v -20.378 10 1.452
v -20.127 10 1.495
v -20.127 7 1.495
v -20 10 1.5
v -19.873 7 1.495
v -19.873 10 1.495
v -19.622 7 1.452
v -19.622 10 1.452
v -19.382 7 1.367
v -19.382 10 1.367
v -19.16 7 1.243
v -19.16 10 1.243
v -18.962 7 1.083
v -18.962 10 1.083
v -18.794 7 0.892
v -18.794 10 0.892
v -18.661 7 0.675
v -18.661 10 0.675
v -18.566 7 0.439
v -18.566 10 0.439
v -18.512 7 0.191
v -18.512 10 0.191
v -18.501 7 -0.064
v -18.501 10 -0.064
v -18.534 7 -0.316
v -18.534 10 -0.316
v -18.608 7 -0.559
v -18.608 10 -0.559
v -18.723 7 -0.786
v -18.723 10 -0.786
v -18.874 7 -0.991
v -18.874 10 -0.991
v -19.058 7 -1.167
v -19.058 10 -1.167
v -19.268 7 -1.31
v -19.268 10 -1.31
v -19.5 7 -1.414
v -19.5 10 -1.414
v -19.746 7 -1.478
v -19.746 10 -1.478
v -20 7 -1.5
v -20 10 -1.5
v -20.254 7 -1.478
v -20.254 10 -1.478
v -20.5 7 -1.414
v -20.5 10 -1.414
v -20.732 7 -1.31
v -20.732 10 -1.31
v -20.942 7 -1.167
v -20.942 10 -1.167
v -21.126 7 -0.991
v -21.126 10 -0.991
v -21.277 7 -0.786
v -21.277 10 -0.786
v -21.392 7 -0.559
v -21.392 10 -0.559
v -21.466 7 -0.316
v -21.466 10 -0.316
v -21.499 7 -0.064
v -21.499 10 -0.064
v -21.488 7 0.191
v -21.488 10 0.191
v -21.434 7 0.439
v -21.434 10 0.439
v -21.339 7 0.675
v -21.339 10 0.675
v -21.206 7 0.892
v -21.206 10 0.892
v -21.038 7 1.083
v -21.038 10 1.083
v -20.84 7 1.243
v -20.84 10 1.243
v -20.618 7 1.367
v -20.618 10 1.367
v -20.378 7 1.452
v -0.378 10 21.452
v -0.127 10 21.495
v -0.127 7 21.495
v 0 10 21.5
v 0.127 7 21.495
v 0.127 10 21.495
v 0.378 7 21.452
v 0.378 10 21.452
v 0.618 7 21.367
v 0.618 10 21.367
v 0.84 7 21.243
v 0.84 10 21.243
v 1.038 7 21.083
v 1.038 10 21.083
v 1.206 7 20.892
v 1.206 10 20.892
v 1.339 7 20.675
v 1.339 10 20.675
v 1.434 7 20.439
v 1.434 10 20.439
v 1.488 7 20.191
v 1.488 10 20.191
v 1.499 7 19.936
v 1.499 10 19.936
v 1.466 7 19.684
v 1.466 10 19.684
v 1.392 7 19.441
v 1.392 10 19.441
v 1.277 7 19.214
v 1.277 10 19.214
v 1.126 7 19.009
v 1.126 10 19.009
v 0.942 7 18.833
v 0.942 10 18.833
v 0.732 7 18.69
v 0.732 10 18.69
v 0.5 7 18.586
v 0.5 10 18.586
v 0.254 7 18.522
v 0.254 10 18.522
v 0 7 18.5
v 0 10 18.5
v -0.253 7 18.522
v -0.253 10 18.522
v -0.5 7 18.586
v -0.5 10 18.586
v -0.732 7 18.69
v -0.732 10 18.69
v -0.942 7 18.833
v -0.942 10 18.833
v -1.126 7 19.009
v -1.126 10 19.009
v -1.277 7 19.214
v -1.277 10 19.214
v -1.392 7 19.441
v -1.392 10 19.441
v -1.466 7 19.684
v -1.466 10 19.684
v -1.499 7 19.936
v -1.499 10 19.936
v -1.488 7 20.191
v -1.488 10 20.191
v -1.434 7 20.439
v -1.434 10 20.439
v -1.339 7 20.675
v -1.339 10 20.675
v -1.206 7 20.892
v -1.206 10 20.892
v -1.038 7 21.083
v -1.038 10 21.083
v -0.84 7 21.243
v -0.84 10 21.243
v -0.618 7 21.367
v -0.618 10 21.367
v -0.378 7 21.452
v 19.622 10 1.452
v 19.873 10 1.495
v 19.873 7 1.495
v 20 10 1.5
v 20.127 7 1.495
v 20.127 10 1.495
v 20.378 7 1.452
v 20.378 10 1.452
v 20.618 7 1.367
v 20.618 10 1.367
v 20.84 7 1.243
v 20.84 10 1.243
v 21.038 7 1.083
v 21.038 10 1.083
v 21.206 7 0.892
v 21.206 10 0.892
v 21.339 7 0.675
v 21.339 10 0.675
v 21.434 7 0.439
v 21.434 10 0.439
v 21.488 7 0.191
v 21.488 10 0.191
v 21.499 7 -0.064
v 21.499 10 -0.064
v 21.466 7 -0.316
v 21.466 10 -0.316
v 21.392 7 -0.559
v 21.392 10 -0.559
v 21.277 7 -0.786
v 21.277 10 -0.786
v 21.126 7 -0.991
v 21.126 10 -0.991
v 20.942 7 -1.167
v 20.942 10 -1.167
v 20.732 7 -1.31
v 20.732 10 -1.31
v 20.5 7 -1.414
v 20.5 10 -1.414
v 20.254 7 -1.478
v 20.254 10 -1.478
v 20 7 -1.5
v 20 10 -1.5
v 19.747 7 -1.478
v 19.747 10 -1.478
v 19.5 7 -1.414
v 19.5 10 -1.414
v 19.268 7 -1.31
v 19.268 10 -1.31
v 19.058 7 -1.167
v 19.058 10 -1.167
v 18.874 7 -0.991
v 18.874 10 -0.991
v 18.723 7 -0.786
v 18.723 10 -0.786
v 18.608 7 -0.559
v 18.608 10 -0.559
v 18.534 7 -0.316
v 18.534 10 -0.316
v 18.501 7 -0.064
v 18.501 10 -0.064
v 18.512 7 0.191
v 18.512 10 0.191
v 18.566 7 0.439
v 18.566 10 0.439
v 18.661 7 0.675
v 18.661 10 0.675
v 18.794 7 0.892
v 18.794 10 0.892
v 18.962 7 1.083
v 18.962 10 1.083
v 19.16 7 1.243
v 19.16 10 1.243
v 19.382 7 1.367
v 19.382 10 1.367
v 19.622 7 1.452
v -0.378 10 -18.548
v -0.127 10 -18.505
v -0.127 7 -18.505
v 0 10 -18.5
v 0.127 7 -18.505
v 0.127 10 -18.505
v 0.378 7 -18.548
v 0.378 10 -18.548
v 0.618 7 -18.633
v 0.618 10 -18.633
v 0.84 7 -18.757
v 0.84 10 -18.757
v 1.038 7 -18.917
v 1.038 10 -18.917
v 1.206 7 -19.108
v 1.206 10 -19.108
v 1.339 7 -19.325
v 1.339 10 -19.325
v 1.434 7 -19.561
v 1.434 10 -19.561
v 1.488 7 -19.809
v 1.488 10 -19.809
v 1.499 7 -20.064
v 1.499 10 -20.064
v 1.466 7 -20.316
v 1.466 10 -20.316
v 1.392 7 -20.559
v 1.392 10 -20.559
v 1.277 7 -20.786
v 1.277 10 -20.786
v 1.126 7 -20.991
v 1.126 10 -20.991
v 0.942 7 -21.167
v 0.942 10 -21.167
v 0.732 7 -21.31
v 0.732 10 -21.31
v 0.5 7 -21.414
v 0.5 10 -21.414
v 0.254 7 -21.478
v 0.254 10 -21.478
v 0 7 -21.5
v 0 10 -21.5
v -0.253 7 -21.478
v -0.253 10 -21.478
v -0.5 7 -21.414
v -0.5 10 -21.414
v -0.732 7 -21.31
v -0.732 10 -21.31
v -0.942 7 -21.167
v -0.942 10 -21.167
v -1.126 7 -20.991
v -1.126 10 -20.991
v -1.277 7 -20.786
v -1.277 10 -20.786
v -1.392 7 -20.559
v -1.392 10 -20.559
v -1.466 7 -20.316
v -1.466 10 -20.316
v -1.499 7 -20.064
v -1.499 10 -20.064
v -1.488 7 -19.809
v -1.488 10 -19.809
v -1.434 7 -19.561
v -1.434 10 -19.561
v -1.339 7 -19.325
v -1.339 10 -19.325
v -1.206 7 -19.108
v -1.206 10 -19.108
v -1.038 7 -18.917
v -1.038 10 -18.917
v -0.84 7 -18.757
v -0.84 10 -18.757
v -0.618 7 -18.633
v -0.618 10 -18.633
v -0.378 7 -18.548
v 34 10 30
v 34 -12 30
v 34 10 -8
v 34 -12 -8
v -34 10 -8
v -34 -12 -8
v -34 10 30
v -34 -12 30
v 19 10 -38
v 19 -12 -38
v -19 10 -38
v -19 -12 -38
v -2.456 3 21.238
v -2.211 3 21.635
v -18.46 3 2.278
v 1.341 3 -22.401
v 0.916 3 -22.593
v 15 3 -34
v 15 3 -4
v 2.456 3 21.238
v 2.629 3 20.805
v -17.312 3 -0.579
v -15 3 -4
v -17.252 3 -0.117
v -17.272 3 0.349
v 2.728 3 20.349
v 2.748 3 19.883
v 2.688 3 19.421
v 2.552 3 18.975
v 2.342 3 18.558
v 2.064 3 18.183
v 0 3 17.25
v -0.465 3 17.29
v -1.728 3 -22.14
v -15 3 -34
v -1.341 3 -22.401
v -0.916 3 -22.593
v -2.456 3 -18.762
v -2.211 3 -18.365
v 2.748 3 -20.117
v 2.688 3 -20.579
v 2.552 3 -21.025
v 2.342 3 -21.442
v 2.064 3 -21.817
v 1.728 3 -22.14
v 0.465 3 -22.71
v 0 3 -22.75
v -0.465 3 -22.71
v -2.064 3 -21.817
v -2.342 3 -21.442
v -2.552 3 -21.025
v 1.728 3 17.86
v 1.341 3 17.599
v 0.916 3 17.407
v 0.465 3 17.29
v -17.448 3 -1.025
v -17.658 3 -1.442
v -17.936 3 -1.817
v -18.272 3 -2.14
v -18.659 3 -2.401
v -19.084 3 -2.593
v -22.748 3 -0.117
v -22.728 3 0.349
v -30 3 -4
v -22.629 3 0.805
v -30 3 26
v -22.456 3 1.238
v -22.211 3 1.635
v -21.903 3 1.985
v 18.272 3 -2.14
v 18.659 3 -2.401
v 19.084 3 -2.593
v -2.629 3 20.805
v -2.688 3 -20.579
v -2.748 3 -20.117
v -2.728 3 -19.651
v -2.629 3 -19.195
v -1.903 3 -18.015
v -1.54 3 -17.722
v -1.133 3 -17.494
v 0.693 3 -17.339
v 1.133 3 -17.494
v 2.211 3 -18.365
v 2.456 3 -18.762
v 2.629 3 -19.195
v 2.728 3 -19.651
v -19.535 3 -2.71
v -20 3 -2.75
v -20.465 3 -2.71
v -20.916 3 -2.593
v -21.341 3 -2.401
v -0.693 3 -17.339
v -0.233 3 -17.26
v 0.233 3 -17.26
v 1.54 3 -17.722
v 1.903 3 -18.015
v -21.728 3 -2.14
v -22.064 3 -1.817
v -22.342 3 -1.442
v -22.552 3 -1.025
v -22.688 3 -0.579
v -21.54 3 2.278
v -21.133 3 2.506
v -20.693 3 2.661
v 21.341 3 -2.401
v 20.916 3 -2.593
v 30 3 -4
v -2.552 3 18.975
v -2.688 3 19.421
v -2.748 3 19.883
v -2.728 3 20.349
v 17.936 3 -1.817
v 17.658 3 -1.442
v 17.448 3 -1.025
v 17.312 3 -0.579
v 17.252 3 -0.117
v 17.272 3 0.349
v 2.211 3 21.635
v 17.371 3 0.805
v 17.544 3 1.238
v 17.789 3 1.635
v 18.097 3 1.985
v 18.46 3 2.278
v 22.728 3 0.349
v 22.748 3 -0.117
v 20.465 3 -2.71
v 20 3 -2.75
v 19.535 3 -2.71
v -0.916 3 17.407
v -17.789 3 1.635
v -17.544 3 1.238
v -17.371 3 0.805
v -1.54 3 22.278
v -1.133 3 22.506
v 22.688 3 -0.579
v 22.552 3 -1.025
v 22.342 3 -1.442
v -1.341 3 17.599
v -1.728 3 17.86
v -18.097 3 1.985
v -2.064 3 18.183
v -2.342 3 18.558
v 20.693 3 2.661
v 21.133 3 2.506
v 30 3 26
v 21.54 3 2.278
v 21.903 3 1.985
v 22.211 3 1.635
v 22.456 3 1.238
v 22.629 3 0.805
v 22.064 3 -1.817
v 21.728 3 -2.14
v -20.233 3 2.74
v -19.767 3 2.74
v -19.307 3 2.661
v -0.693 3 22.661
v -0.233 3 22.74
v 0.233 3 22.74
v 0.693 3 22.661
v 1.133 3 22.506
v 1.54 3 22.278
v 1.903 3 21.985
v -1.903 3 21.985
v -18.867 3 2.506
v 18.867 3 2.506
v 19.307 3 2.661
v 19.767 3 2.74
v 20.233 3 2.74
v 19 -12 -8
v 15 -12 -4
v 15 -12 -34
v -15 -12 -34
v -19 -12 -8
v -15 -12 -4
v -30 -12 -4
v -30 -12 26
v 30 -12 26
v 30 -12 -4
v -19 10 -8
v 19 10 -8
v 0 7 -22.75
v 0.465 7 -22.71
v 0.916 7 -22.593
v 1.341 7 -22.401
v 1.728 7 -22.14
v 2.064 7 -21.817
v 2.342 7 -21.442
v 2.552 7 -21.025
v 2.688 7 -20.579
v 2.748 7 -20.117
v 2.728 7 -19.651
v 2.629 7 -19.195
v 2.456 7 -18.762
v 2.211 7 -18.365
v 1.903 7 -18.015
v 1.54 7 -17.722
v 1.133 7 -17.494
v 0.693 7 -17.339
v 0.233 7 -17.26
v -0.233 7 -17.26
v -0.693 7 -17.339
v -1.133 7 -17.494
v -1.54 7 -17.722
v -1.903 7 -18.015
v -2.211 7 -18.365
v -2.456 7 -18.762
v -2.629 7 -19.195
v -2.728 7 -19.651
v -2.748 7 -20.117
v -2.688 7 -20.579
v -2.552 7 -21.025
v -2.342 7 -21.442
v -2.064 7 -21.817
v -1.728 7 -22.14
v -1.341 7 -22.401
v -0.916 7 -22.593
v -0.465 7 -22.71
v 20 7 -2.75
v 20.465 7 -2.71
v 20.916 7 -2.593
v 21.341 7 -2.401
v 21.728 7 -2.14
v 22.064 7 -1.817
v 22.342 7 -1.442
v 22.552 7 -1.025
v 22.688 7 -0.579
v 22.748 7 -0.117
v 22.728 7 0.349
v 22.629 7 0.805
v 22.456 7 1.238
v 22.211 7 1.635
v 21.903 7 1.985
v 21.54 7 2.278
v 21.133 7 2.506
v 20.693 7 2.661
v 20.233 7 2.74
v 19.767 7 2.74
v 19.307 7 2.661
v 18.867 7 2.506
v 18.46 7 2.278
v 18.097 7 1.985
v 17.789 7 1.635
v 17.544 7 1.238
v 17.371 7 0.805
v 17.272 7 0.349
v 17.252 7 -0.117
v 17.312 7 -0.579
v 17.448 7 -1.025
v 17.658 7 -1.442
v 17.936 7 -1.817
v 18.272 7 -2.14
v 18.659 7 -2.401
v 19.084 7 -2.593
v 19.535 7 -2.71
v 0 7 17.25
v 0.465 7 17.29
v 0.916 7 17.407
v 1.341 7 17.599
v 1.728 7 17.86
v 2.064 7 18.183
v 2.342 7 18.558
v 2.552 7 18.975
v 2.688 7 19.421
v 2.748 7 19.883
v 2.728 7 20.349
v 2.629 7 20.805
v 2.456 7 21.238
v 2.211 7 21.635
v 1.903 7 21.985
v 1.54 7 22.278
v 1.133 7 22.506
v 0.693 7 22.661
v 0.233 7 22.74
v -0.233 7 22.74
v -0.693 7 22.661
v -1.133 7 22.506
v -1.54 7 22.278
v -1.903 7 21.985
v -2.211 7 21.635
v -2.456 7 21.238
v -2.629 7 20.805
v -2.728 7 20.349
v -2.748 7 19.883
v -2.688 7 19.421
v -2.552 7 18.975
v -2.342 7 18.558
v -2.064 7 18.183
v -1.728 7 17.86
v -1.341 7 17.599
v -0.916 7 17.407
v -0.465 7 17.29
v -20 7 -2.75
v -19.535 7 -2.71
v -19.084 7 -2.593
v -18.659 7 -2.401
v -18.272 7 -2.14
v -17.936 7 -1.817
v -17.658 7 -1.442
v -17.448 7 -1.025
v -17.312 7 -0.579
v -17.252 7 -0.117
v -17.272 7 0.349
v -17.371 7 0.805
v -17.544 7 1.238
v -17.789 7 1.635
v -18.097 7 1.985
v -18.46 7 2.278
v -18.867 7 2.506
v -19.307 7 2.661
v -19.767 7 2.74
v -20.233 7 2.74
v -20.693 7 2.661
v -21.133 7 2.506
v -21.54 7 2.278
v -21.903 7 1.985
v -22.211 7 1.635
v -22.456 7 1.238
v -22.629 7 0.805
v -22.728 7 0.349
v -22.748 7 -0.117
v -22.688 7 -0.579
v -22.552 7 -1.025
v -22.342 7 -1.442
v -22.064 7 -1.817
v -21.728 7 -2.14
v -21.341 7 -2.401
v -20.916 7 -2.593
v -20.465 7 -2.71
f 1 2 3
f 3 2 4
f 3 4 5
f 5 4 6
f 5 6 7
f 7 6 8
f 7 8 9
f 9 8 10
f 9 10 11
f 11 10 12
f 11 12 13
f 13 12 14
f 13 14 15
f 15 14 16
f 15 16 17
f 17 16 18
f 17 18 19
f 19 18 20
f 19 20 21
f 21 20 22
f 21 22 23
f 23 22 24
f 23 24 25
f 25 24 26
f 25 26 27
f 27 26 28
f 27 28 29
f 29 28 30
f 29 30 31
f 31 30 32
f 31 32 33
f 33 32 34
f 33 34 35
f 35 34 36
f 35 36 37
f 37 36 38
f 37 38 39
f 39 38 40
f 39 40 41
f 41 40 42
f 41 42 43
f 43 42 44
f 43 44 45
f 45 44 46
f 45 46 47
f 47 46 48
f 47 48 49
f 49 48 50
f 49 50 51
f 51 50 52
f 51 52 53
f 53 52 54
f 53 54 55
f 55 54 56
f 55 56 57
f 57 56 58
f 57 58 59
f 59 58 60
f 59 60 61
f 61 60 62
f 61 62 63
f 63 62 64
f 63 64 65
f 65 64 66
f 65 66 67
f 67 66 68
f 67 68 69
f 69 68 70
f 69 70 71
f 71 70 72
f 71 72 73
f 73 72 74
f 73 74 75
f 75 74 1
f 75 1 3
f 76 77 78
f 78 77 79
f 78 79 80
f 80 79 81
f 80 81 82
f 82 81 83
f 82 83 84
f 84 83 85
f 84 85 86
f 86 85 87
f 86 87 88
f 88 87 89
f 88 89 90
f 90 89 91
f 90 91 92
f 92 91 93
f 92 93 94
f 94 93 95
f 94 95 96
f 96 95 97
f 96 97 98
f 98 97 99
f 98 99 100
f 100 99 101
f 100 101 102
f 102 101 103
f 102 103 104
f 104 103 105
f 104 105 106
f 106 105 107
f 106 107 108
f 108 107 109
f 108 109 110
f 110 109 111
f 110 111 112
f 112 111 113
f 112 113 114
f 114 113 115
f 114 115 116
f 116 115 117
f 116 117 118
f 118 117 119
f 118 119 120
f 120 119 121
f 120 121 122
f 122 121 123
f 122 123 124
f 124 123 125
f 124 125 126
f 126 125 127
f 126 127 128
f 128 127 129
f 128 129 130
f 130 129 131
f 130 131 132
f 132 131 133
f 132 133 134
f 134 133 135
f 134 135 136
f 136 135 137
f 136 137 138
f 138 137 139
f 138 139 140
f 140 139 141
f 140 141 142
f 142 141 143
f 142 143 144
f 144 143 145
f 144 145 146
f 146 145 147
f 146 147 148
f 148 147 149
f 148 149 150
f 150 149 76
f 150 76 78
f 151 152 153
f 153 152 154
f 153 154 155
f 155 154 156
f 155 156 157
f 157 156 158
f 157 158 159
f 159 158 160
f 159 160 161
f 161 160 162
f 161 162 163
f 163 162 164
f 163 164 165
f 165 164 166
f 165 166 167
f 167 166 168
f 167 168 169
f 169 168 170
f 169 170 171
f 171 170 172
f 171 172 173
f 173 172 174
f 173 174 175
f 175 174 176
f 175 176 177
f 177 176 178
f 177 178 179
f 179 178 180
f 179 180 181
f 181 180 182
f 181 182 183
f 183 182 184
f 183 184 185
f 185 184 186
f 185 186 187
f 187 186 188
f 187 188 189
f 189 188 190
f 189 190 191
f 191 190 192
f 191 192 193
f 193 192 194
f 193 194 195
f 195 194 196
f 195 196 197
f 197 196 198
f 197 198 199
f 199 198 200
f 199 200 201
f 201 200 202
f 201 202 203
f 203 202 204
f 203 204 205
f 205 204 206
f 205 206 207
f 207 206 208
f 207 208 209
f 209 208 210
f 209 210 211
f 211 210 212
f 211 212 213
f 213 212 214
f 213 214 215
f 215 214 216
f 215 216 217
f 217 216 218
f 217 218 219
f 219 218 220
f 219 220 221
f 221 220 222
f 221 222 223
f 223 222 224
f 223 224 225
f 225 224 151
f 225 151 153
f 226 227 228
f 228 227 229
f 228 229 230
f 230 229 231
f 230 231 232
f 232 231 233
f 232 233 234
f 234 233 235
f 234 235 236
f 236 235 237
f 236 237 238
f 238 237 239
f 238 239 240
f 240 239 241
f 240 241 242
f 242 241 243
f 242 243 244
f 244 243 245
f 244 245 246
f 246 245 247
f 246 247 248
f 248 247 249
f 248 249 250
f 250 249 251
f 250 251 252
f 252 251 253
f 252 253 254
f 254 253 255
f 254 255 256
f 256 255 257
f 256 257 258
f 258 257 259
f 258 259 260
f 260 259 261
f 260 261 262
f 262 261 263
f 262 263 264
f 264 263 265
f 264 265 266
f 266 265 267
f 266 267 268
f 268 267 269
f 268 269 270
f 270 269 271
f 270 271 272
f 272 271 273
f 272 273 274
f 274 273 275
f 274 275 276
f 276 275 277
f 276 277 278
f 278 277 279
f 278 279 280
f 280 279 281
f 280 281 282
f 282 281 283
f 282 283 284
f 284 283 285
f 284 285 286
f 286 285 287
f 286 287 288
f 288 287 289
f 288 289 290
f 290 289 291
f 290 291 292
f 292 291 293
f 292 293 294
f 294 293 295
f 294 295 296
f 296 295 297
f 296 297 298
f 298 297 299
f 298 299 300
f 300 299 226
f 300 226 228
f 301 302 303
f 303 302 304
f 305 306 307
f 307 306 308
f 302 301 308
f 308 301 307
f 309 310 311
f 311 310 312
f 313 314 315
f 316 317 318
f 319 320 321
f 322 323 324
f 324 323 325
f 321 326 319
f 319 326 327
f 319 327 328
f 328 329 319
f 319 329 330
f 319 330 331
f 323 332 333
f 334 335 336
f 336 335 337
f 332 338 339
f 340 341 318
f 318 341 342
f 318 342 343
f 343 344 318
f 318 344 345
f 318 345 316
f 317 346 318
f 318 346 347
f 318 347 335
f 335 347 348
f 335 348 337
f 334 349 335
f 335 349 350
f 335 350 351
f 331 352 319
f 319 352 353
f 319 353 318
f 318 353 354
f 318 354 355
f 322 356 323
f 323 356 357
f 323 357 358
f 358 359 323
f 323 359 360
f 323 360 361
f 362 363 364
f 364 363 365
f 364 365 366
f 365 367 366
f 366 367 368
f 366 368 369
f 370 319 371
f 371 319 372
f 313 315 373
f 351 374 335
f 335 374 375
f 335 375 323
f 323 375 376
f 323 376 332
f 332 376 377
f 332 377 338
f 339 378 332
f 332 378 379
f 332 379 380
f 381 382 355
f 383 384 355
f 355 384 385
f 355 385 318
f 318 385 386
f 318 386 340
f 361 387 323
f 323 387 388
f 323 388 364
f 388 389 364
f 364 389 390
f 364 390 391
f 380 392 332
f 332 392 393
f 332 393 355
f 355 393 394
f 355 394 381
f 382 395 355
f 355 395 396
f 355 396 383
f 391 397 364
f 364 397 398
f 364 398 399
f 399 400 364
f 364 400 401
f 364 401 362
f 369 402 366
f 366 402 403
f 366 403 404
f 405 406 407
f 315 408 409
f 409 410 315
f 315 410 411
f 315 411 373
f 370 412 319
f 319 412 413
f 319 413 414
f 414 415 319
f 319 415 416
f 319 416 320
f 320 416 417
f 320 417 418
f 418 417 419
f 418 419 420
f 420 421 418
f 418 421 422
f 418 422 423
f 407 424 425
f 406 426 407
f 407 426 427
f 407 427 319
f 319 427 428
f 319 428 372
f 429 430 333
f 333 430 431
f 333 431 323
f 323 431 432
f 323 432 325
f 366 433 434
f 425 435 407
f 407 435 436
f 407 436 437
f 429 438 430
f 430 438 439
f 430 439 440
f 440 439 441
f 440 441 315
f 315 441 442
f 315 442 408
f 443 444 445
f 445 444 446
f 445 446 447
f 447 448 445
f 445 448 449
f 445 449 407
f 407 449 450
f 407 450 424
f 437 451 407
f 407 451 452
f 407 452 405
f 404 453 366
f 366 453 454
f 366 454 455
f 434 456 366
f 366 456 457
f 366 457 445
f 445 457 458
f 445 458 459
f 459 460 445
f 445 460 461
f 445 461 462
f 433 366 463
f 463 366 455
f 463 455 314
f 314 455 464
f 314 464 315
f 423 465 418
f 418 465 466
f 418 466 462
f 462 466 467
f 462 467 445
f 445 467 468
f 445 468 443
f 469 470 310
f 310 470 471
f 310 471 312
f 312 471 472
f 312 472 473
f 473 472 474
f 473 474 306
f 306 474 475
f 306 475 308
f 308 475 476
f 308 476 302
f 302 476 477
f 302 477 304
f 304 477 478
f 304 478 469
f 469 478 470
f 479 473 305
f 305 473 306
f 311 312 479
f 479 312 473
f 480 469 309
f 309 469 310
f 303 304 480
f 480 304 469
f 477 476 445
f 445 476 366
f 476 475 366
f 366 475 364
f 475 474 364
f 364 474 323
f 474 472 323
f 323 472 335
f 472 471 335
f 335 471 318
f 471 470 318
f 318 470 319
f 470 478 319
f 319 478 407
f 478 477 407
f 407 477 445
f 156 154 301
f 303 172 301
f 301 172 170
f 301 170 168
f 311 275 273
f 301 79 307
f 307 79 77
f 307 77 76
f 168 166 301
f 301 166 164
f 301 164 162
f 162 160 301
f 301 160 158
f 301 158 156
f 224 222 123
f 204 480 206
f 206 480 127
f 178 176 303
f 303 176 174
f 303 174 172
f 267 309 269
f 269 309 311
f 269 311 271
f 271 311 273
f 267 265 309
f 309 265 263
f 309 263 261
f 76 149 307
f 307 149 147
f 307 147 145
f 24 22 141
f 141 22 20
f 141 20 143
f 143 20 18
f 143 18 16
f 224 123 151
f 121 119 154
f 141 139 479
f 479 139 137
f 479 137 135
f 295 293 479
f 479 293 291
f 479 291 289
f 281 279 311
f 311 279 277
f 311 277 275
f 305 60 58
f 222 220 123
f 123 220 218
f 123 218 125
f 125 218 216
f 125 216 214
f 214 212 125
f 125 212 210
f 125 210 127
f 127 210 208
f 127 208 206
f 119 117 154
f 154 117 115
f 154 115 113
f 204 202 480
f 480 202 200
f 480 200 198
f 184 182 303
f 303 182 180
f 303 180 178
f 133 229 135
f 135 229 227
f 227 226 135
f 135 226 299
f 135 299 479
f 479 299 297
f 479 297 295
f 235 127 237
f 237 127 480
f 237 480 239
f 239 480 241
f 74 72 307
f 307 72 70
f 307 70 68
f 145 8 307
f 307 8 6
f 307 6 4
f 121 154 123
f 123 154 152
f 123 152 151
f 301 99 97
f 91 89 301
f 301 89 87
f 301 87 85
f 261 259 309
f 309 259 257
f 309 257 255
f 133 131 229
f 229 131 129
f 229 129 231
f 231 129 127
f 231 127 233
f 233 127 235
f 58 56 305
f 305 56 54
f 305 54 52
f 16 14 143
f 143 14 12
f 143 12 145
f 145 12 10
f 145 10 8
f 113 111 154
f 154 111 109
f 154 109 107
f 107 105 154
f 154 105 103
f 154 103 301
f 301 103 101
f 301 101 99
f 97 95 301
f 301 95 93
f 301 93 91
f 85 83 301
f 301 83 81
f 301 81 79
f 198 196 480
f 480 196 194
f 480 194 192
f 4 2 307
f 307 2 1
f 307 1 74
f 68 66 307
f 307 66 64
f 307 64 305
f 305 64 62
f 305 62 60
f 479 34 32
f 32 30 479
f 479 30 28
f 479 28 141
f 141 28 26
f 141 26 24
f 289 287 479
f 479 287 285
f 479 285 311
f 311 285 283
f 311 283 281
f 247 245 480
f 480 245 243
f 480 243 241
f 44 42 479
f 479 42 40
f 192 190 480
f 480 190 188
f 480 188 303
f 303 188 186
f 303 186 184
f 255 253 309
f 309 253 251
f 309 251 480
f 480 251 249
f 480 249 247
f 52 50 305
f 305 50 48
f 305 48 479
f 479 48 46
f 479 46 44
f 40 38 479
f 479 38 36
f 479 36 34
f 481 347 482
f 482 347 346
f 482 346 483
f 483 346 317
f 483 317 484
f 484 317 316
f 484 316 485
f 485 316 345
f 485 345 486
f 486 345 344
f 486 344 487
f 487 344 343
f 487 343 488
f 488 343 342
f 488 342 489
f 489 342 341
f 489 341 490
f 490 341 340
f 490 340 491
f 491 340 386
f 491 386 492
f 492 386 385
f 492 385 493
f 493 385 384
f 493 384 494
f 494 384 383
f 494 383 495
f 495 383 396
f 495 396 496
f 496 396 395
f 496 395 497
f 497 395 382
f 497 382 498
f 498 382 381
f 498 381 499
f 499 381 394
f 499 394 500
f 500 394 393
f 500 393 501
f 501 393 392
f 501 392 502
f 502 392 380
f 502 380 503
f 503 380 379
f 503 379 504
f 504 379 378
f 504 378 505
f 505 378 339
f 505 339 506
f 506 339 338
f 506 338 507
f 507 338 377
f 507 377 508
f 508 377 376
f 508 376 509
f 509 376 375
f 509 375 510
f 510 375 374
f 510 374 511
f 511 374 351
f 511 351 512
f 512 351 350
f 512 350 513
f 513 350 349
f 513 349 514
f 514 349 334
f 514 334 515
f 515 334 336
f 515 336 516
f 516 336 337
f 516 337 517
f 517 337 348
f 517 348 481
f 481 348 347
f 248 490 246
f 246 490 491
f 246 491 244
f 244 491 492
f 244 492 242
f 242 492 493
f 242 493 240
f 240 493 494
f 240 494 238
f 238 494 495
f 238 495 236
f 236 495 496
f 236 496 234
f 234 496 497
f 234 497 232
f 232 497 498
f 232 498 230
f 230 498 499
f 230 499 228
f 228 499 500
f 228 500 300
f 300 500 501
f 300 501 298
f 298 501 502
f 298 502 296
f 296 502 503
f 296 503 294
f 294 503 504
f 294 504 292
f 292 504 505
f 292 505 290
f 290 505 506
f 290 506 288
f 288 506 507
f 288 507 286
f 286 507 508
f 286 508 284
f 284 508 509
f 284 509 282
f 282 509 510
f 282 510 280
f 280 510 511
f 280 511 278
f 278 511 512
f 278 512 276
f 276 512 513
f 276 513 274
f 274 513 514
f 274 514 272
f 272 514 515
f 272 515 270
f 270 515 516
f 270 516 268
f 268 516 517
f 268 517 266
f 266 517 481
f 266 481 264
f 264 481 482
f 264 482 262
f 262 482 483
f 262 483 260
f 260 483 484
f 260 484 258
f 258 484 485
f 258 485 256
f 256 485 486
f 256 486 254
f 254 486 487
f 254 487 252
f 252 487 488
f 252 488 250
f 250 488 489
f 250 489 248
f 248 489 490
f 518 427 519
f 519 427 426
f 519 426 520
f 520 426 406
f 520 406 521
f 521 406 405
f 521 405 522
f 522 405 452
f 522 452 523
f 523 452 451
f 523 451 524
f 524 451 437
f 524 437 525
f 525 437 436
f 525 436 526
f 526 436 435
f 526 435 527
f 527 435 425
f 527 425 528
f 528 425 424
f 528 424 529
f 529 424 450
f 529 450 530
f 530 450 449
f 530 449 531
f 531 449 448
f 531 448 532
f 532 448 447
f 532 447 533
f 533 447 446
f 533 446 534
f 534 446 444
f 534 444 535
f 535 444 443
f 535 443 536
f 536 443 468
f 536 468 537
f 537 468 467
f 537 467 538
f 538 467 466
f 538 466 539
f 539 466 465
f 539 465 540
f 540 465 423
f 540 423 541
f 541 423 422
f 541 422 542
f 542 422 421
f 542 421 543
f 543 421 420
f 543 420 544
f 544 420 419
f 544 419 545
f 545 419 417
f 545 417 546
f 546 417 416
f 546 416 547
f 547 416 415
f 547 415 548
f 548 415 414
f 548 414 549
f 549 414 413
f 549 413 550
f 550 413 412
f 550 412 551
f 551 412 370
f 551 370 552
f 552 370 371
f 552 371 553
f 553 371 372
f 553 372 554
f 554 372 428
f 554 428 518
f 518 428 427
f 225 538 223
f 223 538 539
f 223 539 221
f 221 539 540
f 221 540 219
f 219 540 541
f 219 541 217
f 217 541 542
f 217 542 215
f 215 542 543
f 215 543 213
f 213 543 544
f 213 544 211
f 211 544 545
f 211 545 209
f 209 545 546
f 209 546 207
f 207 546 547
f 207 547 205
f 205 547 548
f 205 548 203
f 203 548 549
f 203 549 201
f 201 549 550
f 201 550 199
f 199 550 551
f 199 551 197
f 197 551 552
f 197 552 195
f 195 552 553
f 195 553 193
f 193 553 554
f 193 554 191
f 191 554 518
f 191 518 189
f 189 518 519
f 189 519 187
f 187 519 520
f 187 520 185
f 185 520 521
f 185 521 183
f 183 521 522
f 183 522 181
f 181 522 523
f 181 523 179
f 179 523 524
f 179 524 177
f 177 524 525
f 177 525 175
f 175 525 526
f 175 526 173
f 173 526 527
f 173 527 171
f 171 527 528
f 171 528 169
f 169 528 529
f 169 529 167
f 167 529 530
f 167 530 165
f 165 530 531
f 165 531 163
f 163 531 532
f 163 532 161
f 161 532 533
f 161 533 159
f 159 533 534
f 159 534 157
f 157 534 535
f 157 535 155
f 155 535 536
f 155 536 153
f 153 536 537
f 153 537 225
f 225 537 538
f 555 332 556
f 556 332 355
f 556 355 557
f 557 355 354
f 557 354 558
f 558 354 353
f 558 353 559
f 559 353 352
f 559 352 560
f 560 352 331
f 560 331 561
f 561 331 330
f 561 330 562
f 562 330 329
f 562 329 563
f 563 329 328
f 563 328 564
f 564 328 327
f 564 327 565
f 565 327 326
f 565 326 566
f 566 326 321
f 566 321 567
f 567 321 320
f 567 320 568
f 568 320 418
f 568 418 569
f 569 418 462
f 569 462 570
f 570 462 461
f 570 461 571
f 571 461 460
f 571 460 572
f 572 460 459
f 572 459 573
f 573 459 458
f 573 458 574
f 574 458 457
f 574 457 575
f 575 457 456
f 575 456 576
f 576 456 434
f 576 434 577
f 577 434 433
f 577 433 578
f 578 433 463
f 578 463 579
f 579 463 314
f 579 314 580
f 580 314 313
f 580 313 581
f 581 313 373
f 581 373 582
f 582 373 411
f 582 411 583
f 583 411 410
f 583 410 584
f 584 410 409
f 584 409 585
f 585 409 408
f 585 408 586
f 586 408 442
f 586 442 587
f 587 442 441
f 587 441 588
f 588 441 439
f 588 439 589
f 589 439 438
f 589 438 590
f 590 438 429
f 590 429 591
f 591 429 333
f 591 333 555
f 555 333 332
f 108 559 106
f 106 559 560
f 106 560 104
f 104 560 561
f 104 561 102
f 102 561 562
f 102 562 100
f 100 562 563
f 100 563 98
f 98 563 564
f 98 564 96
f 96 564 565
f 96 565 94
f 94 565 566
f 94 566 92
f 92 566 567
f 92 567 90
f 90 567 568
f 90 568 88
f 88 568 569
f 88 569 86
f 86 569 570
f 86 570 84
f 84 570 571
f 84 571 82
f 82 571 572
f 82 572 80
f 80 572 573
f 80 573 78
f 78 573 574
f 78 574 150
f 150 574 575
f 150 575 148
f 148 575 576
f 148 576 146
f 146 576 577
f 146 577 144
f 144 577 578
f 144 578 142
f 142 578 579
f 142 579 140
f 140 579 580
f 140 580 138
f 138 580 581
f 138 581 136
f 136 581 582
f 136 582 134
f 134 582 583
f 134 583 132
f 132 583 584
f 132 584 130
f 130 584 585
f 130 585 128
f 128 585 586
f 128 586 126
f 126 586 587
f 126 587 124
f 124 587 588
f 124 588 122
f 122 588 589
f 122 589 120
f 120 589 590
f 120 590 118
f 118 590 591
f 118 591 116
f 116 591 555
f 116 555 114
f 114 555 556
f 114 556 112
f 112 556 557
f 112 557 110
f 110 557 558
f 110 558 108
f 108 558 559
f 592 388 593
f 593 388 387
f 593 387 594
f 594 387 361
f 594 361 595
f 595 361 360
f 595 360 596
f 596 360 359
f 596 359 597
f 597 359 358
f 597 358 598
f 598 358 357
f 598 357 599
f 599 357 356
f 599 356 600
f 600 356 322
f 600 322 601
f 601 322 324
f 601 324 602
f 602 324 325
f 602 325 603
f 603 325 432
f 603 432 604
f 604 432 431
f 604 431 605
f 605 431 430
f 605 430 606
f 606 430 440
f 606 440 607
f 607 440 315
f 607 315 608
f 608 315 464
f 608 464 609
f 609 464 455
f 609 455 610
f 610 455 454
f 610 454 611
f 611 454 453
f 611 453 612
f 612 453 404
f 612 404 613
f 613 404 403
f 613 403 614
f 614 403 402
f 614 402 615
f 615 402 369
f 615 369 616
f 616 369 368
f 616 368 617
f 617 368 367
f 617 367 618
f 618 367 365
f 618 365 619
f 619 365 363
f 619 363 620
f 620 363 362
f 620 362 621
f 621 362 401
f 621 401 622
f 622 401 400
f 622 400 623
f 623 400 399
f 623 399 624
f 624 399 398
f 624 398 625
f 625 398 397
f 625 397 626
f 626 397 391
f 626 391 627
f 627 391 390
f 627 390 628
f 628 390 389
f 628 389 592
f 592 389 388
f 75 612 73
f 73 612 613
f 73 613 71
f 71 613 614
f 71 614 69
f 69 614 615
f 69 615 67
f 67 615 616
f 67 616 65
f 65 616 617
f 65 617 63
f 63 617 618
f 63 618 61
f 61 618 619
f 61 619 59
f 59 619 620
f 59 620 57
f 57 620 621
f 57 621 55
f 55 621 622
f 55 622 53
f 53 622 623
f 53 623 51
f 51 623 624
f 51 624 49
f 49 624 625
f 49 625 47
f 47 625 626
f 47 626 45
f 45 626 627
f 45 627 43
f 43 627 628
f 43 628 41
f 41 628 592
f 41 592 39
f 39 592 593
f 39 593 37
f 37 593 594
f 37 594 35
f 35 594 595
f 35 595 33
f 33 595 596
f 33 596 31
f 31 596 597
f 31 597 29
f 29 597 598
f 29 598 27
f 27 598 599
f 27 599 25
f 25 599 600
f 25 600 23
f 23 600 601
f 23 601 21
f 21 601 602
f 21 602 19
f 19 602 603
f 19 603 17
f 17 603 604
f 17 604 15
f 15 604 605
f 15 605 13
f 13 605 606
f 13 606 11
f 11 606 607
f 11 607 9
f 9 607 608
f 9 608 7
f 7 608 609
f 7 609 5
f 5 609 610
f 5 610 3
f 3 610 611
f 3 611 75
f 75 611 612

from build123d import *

# Parameters (mm, degrees)
CROQUIS3_R               = 11
SALIENTE_EXTRUIR1_DEPTH  = 6
CROQUIS5_R               = 1.7
CORTAR_EXTRUIR2_DEPTH    = 62.100641025
SALIENTE_EXTRUIR2_START  = -6
CROQUIS6_R               = 11
CROQUIS6_R_2             = 10.875
SALIENTE_EXTRUIR2_DEPTH  = 6
SALIENTE_EXTRUIR3_START  = -6
CROQUIS7_R               = 10.875
SALIENTE_EXTRUIR3_DEPTH  = 6
CROQUIS8_W               = 68
CROQUIS8_H               = 4
SALIENTE_EXTRUIR5_DEPTH  = 6
CROQUIS9_W               = 88.033568274
CROQUIS9_H               = 18.476688198
CORTAR_EXTRUIR3_DEPTH    = 6
CROQUIS10_W              = 21.550300015
CROQUIS10_H              = 64
CORTAR_EXTRUIR4_DEPTH    = 6
CROQUIS11_W              = 19.085610936
CROQUIS11_H              = 64
CORTAR_EXTRUIR5_DEPTH    = 6
CROQUIS12_W              = 103.706532793
CROQUIS12_H              = 25.59484813
CORTAR_EXTRUIR6_DEPTH    = 6
SALIENTE_EXTRUIR7_DEPTH  = 6
SALIENTE_EXTRUIR8_START  = -6
SALIENTE_EXTRUIR8_DEPTH  = 6
CROQUIS15_W              = 68
CROQUIS15_H              = 3
CORTAR_EXTRUIR7_DEPTH    = 90
SALIENTE_EXTRUIR9_DEPTH  = 15
CROQUIS17_W              = 15
CROQUIS17_H              = 30
CORTAR_EXTRUIR8_DEPTH    = 15
CROQUIS18_W              = 23.220677269
CROQUIS18_H              = 33.839021269
CORTAR_EXTRUIR10_DEPTH   = 15
CROQUIS19_R              = 1.5
SALIENTE_EXTRUIR10_DEPTH = 4
CROQUIS20_R              = 2.75
CORTAR_EXTRUIR12_DEPTH   = 4


with BuildPart() as part:
    # Croquis3 → Saliente-Extruir1 (new body)
    with BuildSketch(Plane(origin=(0, 0, 0), x_dir=(1, 0, 0), z_dir=(0, 1, 0))):
        with BuildLine():
            ThreePointArc((-42.801000552, 4.132112265), (-40.664966724, 3.179307113), (-38.41511618, 2.540049182))
            ThreePointArc((-38.41511618, 2.540049182), (-38.470748704, 1.474616944), (-38.496837459, 0.408052268))
            ThreePointArc((-38.496837459, 0.408052268), (-40.789021211, -0.057105575), (-42.991724013, -0.843603213))
            ThreePointArc((-42.991724013, -0.843603213), (-42.968445785, -1.647017549), (-42.930154943, -2.449856438))
            ThreePointArc((-42.930154943, -2.449856438), (-40.673709502, -3.065431082), (-38.352643988, -3.353759106))
            ThreePointArc((-38.352643988, -3.353759106), (-38.244987054, -4.415197194), (-38.107959725, -5.473244614))
            ThreePointArc((-38.107959725, -5.473244614), (-40.302274043, -6.282851213), (-42.3591038, -7.396372439))
            ThreePointArc((-42.3591038, -7.396372439), (-42.21345776, -8.186817694), (-42.053062888, -8.974402582))
            ThreePointArc((-42.053062888, -8.974402582), (-39.729095003, -9.238318171), (-37.391218326, -9.168958123))
            ThreePointArc((-37.391218326, -9.168958123), (-37.122795321, -10.201522853), (-36.825863714, -11.226253282))
            ThreePointArc((-36.825863714, -11.226253282), (-38.87087573, -12.361332145), (-40.733622096, -13.775776963))
            ThreePointArc((-40.733622096, -13.775776963), (-40.469022063, -14.534725772), (-40.190282682, -15.288596336))
            ThreePointArc((-40.190282682, -15.288596336), (-37.85326419, -15.194666912), (-35.553374199, -14.769244533))
            ThreePointArc((-35.553374199, -14.769244533), (-35.130476731, -15.748733462), (-34.680600669, -16.716128087))
            ThreePointArc((-34.680600669, -16.716128087), (-36.528377035, -18.150073928), (-38.153378814, -19.832288952))
            ThreePointArc((-38.153378814, -19.832288952), (-37.776026789, -20.541952196), (-37.385476313, -21.24443835))
            ThreePointArc((-37.385476313, -21.24443835), (-35.090184947, -20.794865539), (-32.882189114, -20.023352369))
            ThreePointArc((-32.882189114, -20.023352369), (-32.314729541, -20.926807107), (-31.722453739, -21.814191019))
            ThreePointArc((-31.722453739, -21.814191019), (-33.329684142, -23.513393361), (-34.67885267, -25.423948896))
            ThreePointArc((-34.67885267, -25.423948896), (-34.197593465, -26.067692672), (-33.704386066, -26.702328735))
            ThreePointArc((-33.704386066, -26.702328735), (-31.50462151, -25.907650142), (-29.440273385, -24.808129797))
            ThreePointArc((-29.440273385, -24.808129797), (-28.741552479, -25.614374131), (-28.020759379, -26.400947801))
            ThreePointArc((-28.020759379, -26.400947801), (-29.349771703, -28.325578783), (-30.391483612, -30.419693027))
            ThreePointArc((-30.391483612, -30.419693027), (-29.817597534, -30.982428525), (-29.233293577, -31.534339166))
            ThreePointArc((-29.233293577, -31.534339166), (-27.180616447, -30.413181385), (-25.308302601, -29.011425688))
            ThreePointArc((-25.308302601, -29.011425688), (-24.494697787, -29.701561934), (-23.66228217, -30.368888744))
            ThreePointArc((-23.66228217, -30.368888744), (-24.68192549, -32.473836646), (-25.391763937, -34.702425336))
            ThreePointArc((-25.391763937, -34.702425336), (-24.738702389, -35.170962513), (-24.076997462, -35.627211415))
            ThreePointArc((-24.076997462, -35.627211415), (-22.219520771, -34.205853433), (-20.583126654, -32.53471835))
            ThreePointArc((-20.583126654, -32.53471835), (-19.67370814, -33.092570299), (-18.749181121, -33.625008674))
            ThreePointArc((-18.749181121, -33.625008674), (-19.435555863, -35.860935301), (-19.796882836, -38.171762207))
            ThreePointArc((-19.796882836, -38.171762207), (-19.079953028, -38.535118949), (-18.356356934, -38.885012024))
            ThreePointArc((-18.356356934, -38.885012024), (-16.737618362, -37.196769268), (-15.375499664, -35.29542479))
            ThreePointArc((-15.375499664, -35.29542479), (-14.391583449, -35.707916865), (-13.396615158, -36.092986899))
            ThreePointArc((-13.396615158, -36.092986899), (-13.73363328, -38.407484027), (-13.73797958, -40.746385325))
            ThreePointArc((-13.73797958, -40.746385325), (-12.97398574, -40.996044858), (-12.205458958, -41.231380909))
            ThreePointArc((-12.205458958, -41.231380909), (-10.863400364, -39.315824358), (-9.807483994, -37.228836387))
            ThreePointArc((-9.807483994, -37.228836387), (-8.772132239, -37.486300124), (-7.73004389, -37.714976103))
            ThreePointArc((-7.73004389, -37.714976103), (-7.709805972, -40.053793881), (-7.357069727, -42.365947706))
            ThreePointArc((-7.357069727, -42.365947706), (-6.563919221, -42.496058223), (-5.768475368, -42.611321171))
            ThreePointArc((-5.768475368, -42.611321171), (-4.734553468, -40.513349847), (-4.009589211, -38.289635613))
            ThreePointArc((-4.009589211, -38.289635613), (-2.947069685, -38.38603628), (-1.882286945, -38.452958233))
            ThreePointArc((-1.882286945, -38.452958233), (-1.505267347, -40.761276754), (-0.803716395, -42.992488181))
            ThreePointArc((-0.803716395, -42.992488181), (0, -43), (0.803716395, -42.992488181))
            ThreePointArc((0.803716395, -42.992488181), (1.505267347, -40.761276754), (1.882286945, -38.452958233))
            ThreePointArc((1.882286945, -38.452958233), (2.947069685, -38.38603628), (4.009589211, -38.289635613))
            ThreePointArc((4.009589211, -38.289635613), (4.734553468, -40.513349847), (5.768475368, -42.611321171))
            ThreePointArc((5.768475368, -42.611321171), (6.563919221, -42.496058223), (7.357069727, -42.365947706))
            ThreePointArc((7.357069727, -42.365947706), (7.709805972, -40.053793881), (7.73004389, -37.714976103))
            ThreePointArc((7.73004389, -37.714976103), (8.772132239, -37.486300124), (9.807483994, -37.228836387))
            ThreePointArc((9.807483994, -37.228836387), (10.863400364, -39.315824358), (12.205458958, -41.231380909))
            ThreePointArc((12.205458958, -41.231380909), (12.97398574, -40.996044858), (13.73797958, -40.746385325))
            ThreePointArc((13.73797958, -40.746385325), (13.73363328, -38.407484027), (13.396615158, -36.092986899))
            ThreePointArc((13.396615158, -36.092986899), (14.391583449, -35.707916865), (15.375499664, -35.29542479))
            ThreePointArc((15.375499664, -35.29542479), (16.737618362, -37.196769268), (18.356356934, -38.885012024))
            ThreePointArc((18.356356934, -38.885012024), (19.079953028, -38.535118949), (19.796882836, -38.171762207))
            ThreePointArc((19.796882836, -38.171762207), (19.435555863, -35.860935301), (18.749181121, -33.625008674))
            ThreePointArc((18.749181121, -33.625008674), (19.67370814, -33.092570299), (20.583126654, -32.53471835))
            ThreePointArc((20.583126654, -32.53471835), (22.219520771, -34.205853433), (24.076997462, -35.627211415))
            ThreePointArc((24.076997462, -35.627211415), (24.738702389, -35.170962513), (25.391763937, -34.702425336))
            ThreePointArc((25.391763937, -34.702425336), (24.68192549, -32.473836646), (23.66228217, -30.368888744))
            ThreePointArc((23.66228217, -30.368888744), (24.494697787, -29.701561934), (25.308302601, -29.011425688))
            ThreePointArc((25.308302601, -29.011425688), (27.180616447, -30.413181385), (29.233293577, -31.534339166))
            ThreePointArc((29.233293577, -31.534339166), (29.817597534, -30.982428525), (30.391483612, -30.419693027))
            ThreePointArc((30.391483612, -30.419693027), (29.349771703, -28.325578783), (28.020759379, -26.400947801))
            ThreePointArc((28.020759379, -26.400947801), (28.741552479, -25.614374131), (29.440273385, -24.808129797))
            ThreePointArc((29.440273385, -24.808129797), (31.50462151, -25.907650142), (33.704386066, -26.702328735))
            ThreePointArc((33.704386066, -26.702328735), (34.197593465, -26.067692672), (34.67885267, -25.423948896))
            ThreePointArc((34.67885267, -25.423948896), (33.329684142, -23.513393361), (31.722453739, -21.814191019))
            ThreePointArc((31.722453739, -21.814191019), (32.314729541, -20.926807107), (32.882189114, -20.023352369))
            ThreePointArc((32.882189114, -20.023352369), (35.090184947, -20.794865539), (37.385476313, -21.24443835))
            ThreePointArc((37.385476313, -21.24443835), (37.776026789, -20.541952196), (38.153378814, -19.832288952))
            ThreePointArc((38.153378814, -19.832288952), (36.528377035, -18.150073928), (34.680600669, -16.716128087))
            ThreePointArc((34.680600669, -16.716128087), (35.130476731, -15.748733462), (35.553374199, -14.769244533))
            ThreePointArc((35.553374199, -14.769244533), (37.85326419, -15.194666912), (40.190282682, -15.288596336))
            ThreePointArc((40.190282682, -15.288596336), (40.469022063, -14.534725772), (40.733622096, -13.775776963))
            ThreePointArc((40.733622096, -13.775776963), (38.87087573, -12.361332145), (36.825863714, -11.226253282))
            ThreePointArc((36.825863714, -11.226253282), (37.122795321, -10.201522853), (37.391218326, -9.168958123))
            ThreePointArc((37.391218326, -9.168958123), (39.729095003, -9.238318171), (42.053062888, -8.974402582))
            ThreePointArc((42.053062888, -8.974402582), (42.21345776, -8.186817694), (42.3591038, -7.396372439))
            ThreePointArc((42.3591038, -7.396372439), (40.302274043, -6.282851213), (38.107959725, -5.473244614))
            ThreePointArc((38.107959725, -5.473244614), (38.244987054, -4.415197194), (38.352643988, -3.353759106))
            ThreePointArc((38.352643988, -3.353759106), (40.673709502, -3.065431082), (42.930154943, -2.449856438))
            ThreePointArc((42.930154943, -2.449856438), (42.968445785, -1.647017549), (42.991724013, -0.843603213))
            ThreePointArc((42.991724013, -0.843603213), (40.789021211, -0.057105575), (38.496837459, 0.408052268))
            ThreePointArc((38.496837459, 0.408052268), (38.470748704, 1.474616944), (38.41511618, 2.540049182))
            ThreePointArc((38.41511618, 2.540049182), (40.664966724, 3.179307113), (42.801000552, 4.132112265))
            ThreePointArc((42.801000552, 4.132112265), (42.71628986, 4.931387292), (42.616654653, 5.728939357))
            ThreePointArc((42.616654653, 5.728939357), (40.319708293, 6.16997857), (37.983381952, 6.279784751))
            ThreePointArc((37.983381952, 6.279784751), (37.794788612, 7.329867312), (37.577170609, 8.37432087))
            ThreePointArc((37.577170609, 8.37432087), (39.703071592, 9.349525044), (41.668626984, 10.617227758))
            ThreePointArc((41.668626984, 10.617227758), (41.462900304, 11.394204594), (41.242687029, 12.167200444))
            ThreePointArc((41.242687029, 12.167200444), (38.905335586, 12.252443647), (36.579628164, 12.004324402))
            ThreePointArc((36.579628164, 12.004324402), (36.232950707, 13.013311802), (35.858448007, 14.012305575))
            ThreePointArc((35.858448007, 14.012305575), (37.810570112, 15.300598033), (39.559576116, 16.853484432))
            ThreePointArc((39.559576116, 16.853484432), (39.237655508, 17.589951398), (38.902025776, 18.320272666))
            ThreePointArc((38.902025776, 18.320272666), (36.579054788, 18.047721829), (34.318478896, 17.447492864))
            ThreePointArc((34.318478896, 17.447492864), (33.821843148, 18.391735293), (33.299233776, 19.321853713))
            ThreePointArc((33.299233776, 19.321853713), (35.031820916, 20.893037971), (36.523282314, 22.694709714))
            ThreePointArc((36.523282314, 22.694709714), (36.092713324, 23.37340465), (35.64953401, 24.043933223))
            ThreePointArc((35.64953401, 24.043933223), (33.395391948, 23.419976708), (31.25293357, 22.48170688))
            ThreePointArc((31.25293357, 22.48170688), (30.617980251, 23.339072097), (29.959513729, 24.178513977))
            ThreePointArc((29.959513729, 24.178513977), (31.431955529, 25.995762808), (32.63091373, 28.003990237))
            ThreePointArc((32.63091373, 28.003990237), (32.101788529, 28.609005107), (31.561447383, 29.204024365))
            ThreePointArc((31.561447383, 29.204024365), (29.428969426, 28.243287183), (27.45484597, 26.988968742))
            ThreePointArc((27.45484597, 26.988968742), (26.696457848, 27.739360832), (25.917568072, 28.468450366))
            ThreePointArc((25.917568072, 28.468450366), (27.095351745, 30.489168998), (27.973704184, 32.656880963))
            ThreePointArc((27.973704184, 32.656880963), (27.35842502, 33.174034732), (26.733587179, 33.679597927))
            ThreePointArc((26.733587179, 33.679597927), (24.772756803, 32.404598945), (23.013240049, 30.863632052))
            ThreePointArc((23.013240049, 30.863632052), (22.1491931, 31.48946246), (21.268136586, 32.091110407))
            ThreePointArc((21.268136586, 32.091110407), (22.123655881, 34.267934907), (22.660814722, 36.544322078))
            ThreePointArc((22.660814722, 36.544322078), (21.973803216, 36.9614931), (21.27911435, 37.36575026))
            ThreePointArc((21.27911435, 37.36575026), (19.535891757, 35.806374372), (18.032223288, 34.014877985))
            ThreePointArc((18.032223288, 34.014877985), (17.082770038, 34.501477777), (16.120198005, 34.961582019))
            ThreePointArc((16.120198005, 34.961582019), (16.633400275, 37.243489467), (16.816774969, 39.575195257))
            ThreePointArc((16.816774969, 39.575195257), (16.074134089, 39.882605397), (15.325877117, 40.176081076))
            ThreePointArc((15.325877117, 40.176081076), (13.841121966, 38.368878731), (12.628546495, 36.368844007))
            ThreePointArc((12.628546495, 36.368844007), (11.615941325, 36.704807698), (10.594415646, 37.012583781))
            ThreePointArc((10.594415646, 37.012583781), (10.753271864, 39.3460882), (10.578564264, 41.678459402))
            ThreePointArc((10.578564264, 41.678459402), (9.797700883, 41.868903227), (9.013414313, 42.044718603))
            ThreePointArc((9.013414313, 42.044718603), (7.821928008, 40.032049093), (6.928867276, 37.870355151))
            ThreePointArc((6.928867276, 37.870355151), (5.876844793, 38.047808035), (4.820309163, 38.196041949))
            ThreePointArc((4.820309163, 38.196041949), (4.621095874, 40.526447973), (4.092400979, 42.804815783))
            ThreePointArc((4.092400979, 42.804815783), (3.291617872, 42.873829451), (2.489684717, 42.927863562))
            ThreePointArc((2.489684717, 42.927863562), (1.619394686, 40.756902154), (1.066781281, 38.484217268))
            ThreePointArc((1.066781281, 38.484217268), (0, 38.499), (-1.066781281, 38.484217268))
            ThreePointArc((-1.066781281, 38.484217268), (-1.619394686, 40.756902154), (-2.489684717, 42.927863562))
            ThreePointArc((-2.489684717, 42.927863562), (-3.291617872, 42.873829451), (-4.092400979, 42.804815783))
            ThreePointArc((-4.092400979, 42.804815783), (-4.621095874, 40.526447973), (-4.820309163, 38.196041949))
            ThreePointArc((-4.820309163, 38.196041949), (-5.876844793, 38.047808035), (-6.928867276, 37.870355151))
            ThreePointArc((-6.928867276, 37.870355151), (-7.821928008, 40.032049093), (-9.013414313, 42.044718603))
            ThreePointArc((-9.013414313, 42.044718603), (-9.797700883, 41.868903227), (-10.578564264, 41.678459402))
            ThreePointArc((-10.578564264, 41.678459402), (-10.753271864, 39.3460882), (-10.594415646, 37.012583781))
            ThreePointArc((-10.594415646, 37.012583781), (-11.615941325, 36.704807698), (-12.628546495, 36.368844007))
            ThreePointArc((-12.628546495, 36.368844007), (-13.841121966, 38.368878731), (-15.325877117, 40.176081076))
            ThreePointArc((-15.325877117, 40.176081076), (-16.074134089, 39.882605397), (-16.816774969, 39.575195257))
            ThreePointArc((-16.816774969, 39.575195257), (-16.633400275, 37.243489467), (-16.120198005, 34.961582019))
            ThreePointArc((-16.120198005, 34.961582019), (-17.082770038, 34.501477777), (-18.032223288, 34.014877985))
            ThreePointArc((-18.032223288, 34.014877985), (-19.535891757, 35.806374372), (-21.27911435, 37.36575026))
            ThreePointArc((-21.27911435, 37.36575026), (-21.973803216, 36.9614931), (-22.660814722, 36.544322078))
            ThreePointArc((-22.660814722, 36.544322078), (-22.123655881, 34.267934907), (-21.268136586, 32.091110407))
            ThreePointArc((-21.268136586, 32.091110407), (-22.1491931, 31.48946246), (-23.013240049, 30.863632052))
            ThreePointArc((-23.013240049, 30.863632052), (-24.772756803, 32.404598945), (-26.733587179, 33.679597927))
            ThreePointArc((-26.733587179, 33.679597927), (-27.35842502, 33.174034732), (-27.973704184, 32.656880963))
            ThreePointArc((-27.973704184, 32.656880963), (-27.095351745, 30.489168998), (-25.917568072, 28.468450366))
            ThreePointArc((-25.917568072, 28.468450366), (-26.696457848, 27.739360832), (-27.45484597, 26.988968742))
            ThreePointArc((-27.45484597, 26.988968742), (-29.428969426, 28.243287183), (-31.561447383, 29.204024364))
            ThreePointArc((-31.561447383, 29.204024364), (-32.101788529, 28.609005107), (-32.63091373, 28.003990237))
            ThreePointArc((-32.63091373, 28.003990237), (-31.431955529, 25.995762808), (-29.959513729, 24.178513977))
            ThreePointArc((-29.959513729, 24.178513977), (-30.617980251, 23.339072097), (-31.25293357, 22.48170688))
            ThreePointArc((-31.25293357, 22.48170688), (-33.395391948, 23.419976708), (-35.64953401, 24.043933223))
            ThreePointArc((-35.64953401, 24.043933223), (-36.092713324, 23.37340465), (-36.523282314, 22.694709714))
            ThreePointArc((-36.523282314, 22.694709714), (-35.031820916, 20.893037971), (-33.299233776, 19.321853713))
            ThreePointArc((-33.299233776, 19.321853713), (-33.821843148, 18.391735293), (-34.318478896, 17.447492864))
            ThreePointArc((-34.318478896, 17.447492864), (-36.579054788, 18.047721829), (-38.902025776, 18.320272666))
            ThreePointArc((-38.902025776, 18.320272666), (-39.237655508, 17.589951398), (-39.559576116, 16.853484432))
            ThreePointArc((-39.559576116, 16.853484432), (-37.810570112, 15.300598033), (-35.858448007, 14.012305575))
            ThreePointArc((-35.858448007, 14.012305575), (-36.232950707, 13.013311802), (-36.579628164, 12.004324402))
            ThreePointArc((-36.579628164, 12.004324402), (-38.905335586, 12.252443647), (-41.242687029, 12.167200444))
            ThreePointArc((-41.242687029, 12.167200444), (-41.462900304, 11.394204594), (-41.668626984, 10.617227758))
            ThreePointArc((-41.668626984, 10.617227758), (-39.703071592, 9.349525044), (-37.577170609, 8.37432087))
            ThreePointArc((-37.577170609, 8.37432087), (-37.794788612, 7.329867312), (-37.983381952, 6.279784751))
            ThreePointArc((-37.983381952, 6.279784751), (-40.319708293, 6.16997857), (-42.616654653, 5.728939357))
            ThreePointArc((-42.616654653, 5.728939357), (-42.71628986, 4.931387292), (-42.801000552, 4.132112265))
        make_face()
        with Locations(Location((0, 0, 0), (0, 0, 270))):
            Circle(CROQUIS3_R, mode=Mode.SUBTRACT)
    extrude(amount=SALIENTE_EXTRUIR1_DEPTH)

    # Croquis5 → Cortar-Extruir2 (cut, through all)
    with BuildSketch(Plane(origin=(0, 6, 0), x_dir=(1, 0, 0), z_dir=(0, 1, 0))):
        with Locations(Location((0, 20, 0), (0, 0, 270))):
            Circle(CROQUIS5_R)
        with Locations(Location((20, 0, 0), (0, 0, 270))):
            Circle(CROQUIS5_R)
        with Locations(Location((0, -20, 0), (0, 0, 270))):
            Circle(CROQUIS5_R)
        with Locations(Location((-20, 0, 0), (0, 0, 270))):
            Circle(CROQUIS5_R)
    extrude(amount=-CORTAR_EXTRUIR2_DEPTH, mode=Mode.SUBTRACT)

    # Croquis6 → Saliente-Extruir2 (add)
    with BuildSketch(Plane(origin=(0, 6, 0), x_dir=(1, 0, 0), z_dir=(0, 1, 0)).offset(SALIENTE_EXTRUIR2_START)):
        Circle(CROQUIS6_R)
        with Locations(Location((0, 0, 0), (0, 0, 270))):
            Circle(CROQUIS6_R_2, mode=Mode.SUBTRACT)
    extrude(amount=SALIENTE_EXTRUIR2_DEPTH)

    # Croquis7 → Saliente-Extruir3 (add)
    with BuildSketch(Plane(origin=(0, 6, 0), x_dir=(1, 0, 0), z_dir=(0, 1, 0)).offset(SALIENTE_EXTRUIR3_START)):
        Circle(CROQUIS7_R)
    extrude(amount=SALIENTE_EXTRUIR3_DEPTH)

    # Croquis8 → Saliente-Extruir5 (add)
    with BuildSketch(Plane(origin=(0, 6, 0), x_dir=(1, 0, 0), z_dir=(0, 1, 0))):
        with Locations((0, -28)):
            Rectangle(CROQUIS8_W, CROQUIS8_H)
    extrude(amount=-SALIENTE_EXTRUIR5_DEPTH)

    # Croquis9 → Cortar-Extruir3 (cut)
    with BuildSketch(Plane(origin=(0, 6, 0), x_dir=(1, 0, 0), z_dir=(0, 1, 0))):
        with Locations((10.016784137, -39.238344099)):
            Rectangle(CROQUIS9_W, CROQUIS9_H)
    extrude(amount=-CORTAR_EXTRUIR3_DEPTH, mode=Mode.SUBTRACT)

    # Croquis10 → Cortar-Extruir4 (cut)
    with BuildSketch(Plane(origin=(0, 6, 0), x_dir=(1, 0, 0), z_dir=(0, 1, 0))):
        with Locations((-44.775150008, 2)):
            Rectangle(CROQUIS10_W, CROQUIS10_H)
    extrude(amount=-CORTAR_EXTRUIR4_DEPTH, mode=Mode.SUBTRACT)

    # Croquis11 → Cortar-Extruir5 (cut)
    with BuildSketch(Plane(origin=(0, 6, 0), x_dir=(1, 0, 0), z_dir=(0, 1, 0))):
        with Locations((43.542805468, 2)):
            Rectangle(CROQUIS11_W, CROQUIS11_H)
    extrude(amount=-CORTAR_EXTRUIR5_DEPTH, mode=Mode.SUBTRACT)

    # Croquis12 → Cortar-Extruir6 (cut)
    with BuildSketch(Plane(origin=(0, 6, 0), x_dir=(1, 0, 0), z_dir=(0, 1, 0))):
        with Locations((2.74907628, 50.797424065)):
            Rectangle(CROQUIS12_W, CROQUIS12_H)
    extrude(amount=-CORTAR_EXTRUIR6_DEPTH, mode=Mode.SUBTRACT)

    # Croquis13 → Saliente-Extruir7 (add)
    with BuildSketch(Plane(origin=(0, 6, 0), x_dir=(1, 0, 0), z_dir=(0, 1, 0))):
        Polygon((-34, 38), (-34, 14.467679055), (-4.360603755, 38), align=None)
    extrude(amount=-SALIENTE_EXTRUIR7_DEPTH)

    # Croquis14 → Saliente-Extruir8 (add)
    with BuildSketch(Plane(origin=(0, 6, 0), x_dir=(1, 0, 0), z_dir=(0, 1, 0)).offset(SALIENTE_EXTRUIR8_START)):
        with BuildLine():
            ThreePointArc((-29.440273385, -24.808129797), (-28.922869663, -25.409459094), (-28.39318582, -26))
            Line((-28.39318582, -26), (-31.716526987, -26))
            ThreePointArc((-31.716526987, -26), (-30.555022748, -25.448711519), (-29.440273385, -24.808129797))
        make_face()
        with BuildLine():
            ThreePointArc((-32.882189114, -20.023352369), (-33.437118608, -20.250964276), (-34, -20.458131994))
            Line((-34, -20.458131994), (-34, -24.390483775))
            ThreePointArc((-34, -24.390483775), (-32.928936598, -23.042479278), (-31.722453739, -21.814191019))
            ThreePointArc((-31.722453739, -21.814191019), (-32.314729541, -20.926807107), (-32.882189114, -20.023352369))
        make_face()
        with BuildLine():
            ThreePointArc((31.722453739, -21.814191019), (32.928936598, -23.042479278), (34, -24.390483775))
            Line((34, -24.390483775), (34, -20.458131994))
            ThreePointArc((34, -20.458131994), (33.437118608, -20.250964276), (32.882189114, -20.023352369))
            ThreePointArc((32.882189114, -20.023352369), (32.314729541, -20.926807107), (31.722453739, -21.814191019))
        make_face()
        with BuildLine():
            ThreePointArc((29.440273385, -24.808129797), (30.555022748, -25.448711519), (31.716526987, -26))
            Line((31.716526987, -26), (28.39318582, -26))
            ThreePointArc((28.39318582, -26), (28.922869663, -25.409459094), (29.440273385, -24.808129797))
        make_face()
        with BuildLine():
            ThreePointArc((31.25293357, 22.48170688), (32.600571454, 23.114088848), (34, 23.621665997))
            Line((34, 23.621665997), (34, 38))
            Line((34, 38), (16.729688427, 38))
            ThreePointArc((16.729688427, 38), (16.496871557, 36.466362568), (16.120198005, 34.961582019))
            ThreePointArc((16.120198005, 34.961582019), (17.082770038, 34.501477777), (18.032223288, 34.014877985))
            ThreePointArc((18.032223288, 34.014877985), (19.535891757, 35.806374372), (21.27911435, 37.36575026))
            ThreePointArc((21.27911435, 37.36575026), (21.973803216, 36.9614931), (22.660814722, 36.544322078))
            ThreePointArc((22.660814722, 36.544322078), (22.123655881, 34.267934907), (21.268136586, 32.091110407))
            ThreePointArc((21.268136586, 32.091110407), (22.1491931, 31.48946246), (23.013240049, 30.863632052))
            ThreePointArc((23.013240049, 30.863632052), (24.772756803, 32.404598945), (26.733587179, 33.679597927))
            ThreePointArc((26.733587179, 33.679597927), (27.35842502, 33.174034732), (27.973704184, 32.656880963))
            ThreePointArc((27.973704184, 32.656880963), (27.095351745, 30.489168998), (25.917568072, 28.468450366))
            ThreePointArc((25.917568072, 28.468450366), (26.696457848, 27.739360832), (27.45484597, 26.988968742))
            ThreePointArc((27.45484597, 26.988968742), (29.428969426, 28.243287183), (31.561447383, 29.204024365))
            ThreePointArc((31.561447383, 29.204024365), (32.101788529, 28.609005107), (32.63091373, 28.003990237))
            ThreePointArc((32.63091373, 28.003990237), (31.431955529, 25.995762808), (29.959513729, 24.178513977))
            ThreePointArc((29.959513729, 24.178513977), (30.617980251, 23.339072097), (31.25293357, 22.48170688))
        make_face()
        with BuildLine():
            Line((6.972489556, 38), (6.178430302, 38))
            ThreePointArc((6.178430302, 38), (6.553969362, 37.937033181), (6.928867276, 37.870355151))
            ThreePointArc((6.928867276, 37.870355151), (6.95054325, 37.935223056), (6.972489556, 38))
        make_face()
        with BuildLine():
            Line((13.587272636, 38), (10.70252361, 38))
            ThreePointArc((10.70252361, 38), (10.655947082, 37.505473216), (10.594415646, 37.012583781))
            ThreePointArc((10.594415646, 37.012583781), (11.615941325, 36.704807698), (12.628546495, 36.368844007))
            ThreePointArc((12.628546495, 36.368844007), (13.084366971, 37.198259369), (13.587272636, 38))
        make_face()
        with BuildLine():
            ThreePointArc((33.299233776, 19.321853713), (33.655528836, 18.694340849), (34, 18.060260269))
            Line((34, 18.060260269), (34, 19.90375037))
            ThreePointArc((34, 19.90375037), (33.65365753, 19.60793598), (33.299233776, 19.321853713))
        make_face()
    extrude(amount=SALIENTE_EXTRUIR8_DEPTH)

    # Croquis15 → Cortar-Extruir7 (cut)
    with BuildSketch(Plane.ZY.offset(34)):
        with Locations((-4, 1.5)):
            Rectangle(CROQUIS15_W, CROQUIS15_H)
    extrude(amount=-CORTAR_EXTRUIR7_DEPTH, mode=Mode.SUBTRACT)

    # Croquis16 → Saliente-Extruir9 (add)
    with BuildSketch(Plane(origin=(0, 3, 0), x_dir=(-1, 0, 0), z_dir=(0, -1, 0))):
        Polygon((34, -30), (34, 8), (19, 8), (19, 38), (-19, 38), (-19, 8), (-34, 8), (-34, -30), align=None)
        Polygon((30, -26), (30, 4), (15, 4), (15, 34), (-15, 34), (-15, 4), (-30, 4), (-30, -26), align=None, mode=Mode.SUBTRACT)
    extrude(amount=SALIENTE_EXTRUIR9_DEPTH)

    # Croquis17 → Cortar-Extruir8 (cut)
    with BuildSketch(Plane(origin=(0, 3, 0), x_dir=(-1, 0, 0), z_dir=(0, -1, 0))):
        with Locations((26.5, 23)):
            Rectangle(CROQUIS17_W, CROQUIS17_H)
    extrude(amount=-CORTAR_EXTRUIR8_DEPTH, mode=Mode.SUBTRACT)

    # Croquis18 → Cortar-Extruir10 (cut)
    with BuildSketch(Plane(origin=(0, 3, 0), x_dir=(-1, 0, 0), z_dir=(0, -1, 0))):
        with Locations((-30.610338634, 24.919510634)):
            Rectangle(CROQUIS18_W, CROQUIS18_H)
    extrude(amount=-CORTAR_EXTRUIR10_DEPTH, mode=Mode.SUBTRACT)

    # Croquis19 → Saliente-Extruir10 (add)
    with BuildSketch(Plane(origin=(0, 6, 0), x_dir=(1, 0, 0), z_dir=(0, 1, 0))):
        Polygon((-34, -30), (-34, 8), (-19, 8), (-19, 38), (19, 38), (19, 8), (34, 8), (34, -30), align=None)
        with Locations(Location((-20, 0, 0), (0, 0, 270))):
            Circle(CROQUIS19_R, mode=Mode.SUBTRACT)
        with Locations(Location((0, -20, 0), (0, 0, 270))):
            Circle(CROQUIS19_R, mode=Mode.SUBTRACT)
        with Locations(Location((20, 0, 0), (0, 0, 270))):
            Circle(CROQUIS19_R, mode=Mode.SUBTRACT)
        with Locations(Location((0, 20, 0), (0, 0, 270))):
            Circle(CROQUIS19_R, mode=Mode.SUBTRACT)
    extrude(amount=SALIENTE_EXTRUIR10_DEPTH)

    # Croquis20 → Cortar-Extruir12 (cut)
    with BuildSketch(Plane(origin=(0, 3, 0), x_dir=(-1, 0, 0), z_dir=(0, -1, 0))):
        with Locations(Location((0, -20, 0), (0, 0, 90))):
            Circle(CROQUIS20_R)
        with Locations(Location((-20, 0, 0), (0, 0, 90))):
            Circle(CROQUIS20_R)
        with Locations(Location((0, 20, 0), (0, 0, 90))):
            Circle(CROQUIS20_R)
        with Locations(Location((20, 0, 0), (0, 0, 90))):
            Circle(CROQUIS20_R)
    extrude(amount=-CORTAR_EXTRUIR12_DEPTH, mode=Mode.SUBTRACT)


solid = part.part
